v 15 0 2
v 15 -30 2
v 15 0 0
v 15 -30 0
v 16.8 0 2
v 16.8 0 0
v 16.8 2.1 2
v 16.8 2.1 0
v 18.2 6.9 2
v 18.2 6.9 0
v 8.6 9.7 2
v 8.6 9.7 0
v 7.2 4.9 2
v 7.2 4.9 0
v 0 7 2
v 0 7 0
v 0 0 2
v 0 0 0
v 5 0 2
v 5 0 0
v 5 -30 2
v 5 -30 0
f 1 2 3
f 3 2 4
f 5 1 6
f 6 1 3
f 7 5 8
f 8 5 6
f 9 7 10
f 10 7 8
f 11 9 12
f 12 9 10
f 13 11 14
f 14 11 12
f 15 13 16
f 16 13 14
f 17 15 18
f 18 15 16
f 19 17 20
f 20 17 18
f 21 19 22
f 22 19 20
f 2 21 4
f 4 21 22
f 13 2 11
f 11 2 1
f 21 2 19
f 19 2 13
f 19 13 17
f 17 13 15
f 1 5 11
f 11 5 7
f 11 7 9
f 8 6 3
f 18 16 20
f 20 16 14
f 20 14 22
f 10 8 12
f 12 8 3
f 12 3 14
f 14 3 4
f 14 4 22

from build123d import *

# Parameters (mm, degrees)
SKETCH2_W           = 10
SKETCH2_H           = 30
BOSS_EXTRUDE1_DEPTH = 2


with BuildPart() as part:
    # Sketch2 → Boss-Extrude1 (new body)
    with BuildSketch(Plane.XY):
        with Locations((10, -15)):
            Rectangle(SKETCH2_W, SKETCH2_H)
        Polygon((0, 7), (0, 0), (5, 0), (15, 0), (16.8, 0), (16.8, 2.1), (7.2, 4.9), align=None)
        Polygon((8.6, 9.7), (7.2, 4.9), (16.8, 2.1), (18.2, 6.9), align=None)
    extrude(amount=BOSS_EXTRUDE1_DEPTH)


solid = part.part
